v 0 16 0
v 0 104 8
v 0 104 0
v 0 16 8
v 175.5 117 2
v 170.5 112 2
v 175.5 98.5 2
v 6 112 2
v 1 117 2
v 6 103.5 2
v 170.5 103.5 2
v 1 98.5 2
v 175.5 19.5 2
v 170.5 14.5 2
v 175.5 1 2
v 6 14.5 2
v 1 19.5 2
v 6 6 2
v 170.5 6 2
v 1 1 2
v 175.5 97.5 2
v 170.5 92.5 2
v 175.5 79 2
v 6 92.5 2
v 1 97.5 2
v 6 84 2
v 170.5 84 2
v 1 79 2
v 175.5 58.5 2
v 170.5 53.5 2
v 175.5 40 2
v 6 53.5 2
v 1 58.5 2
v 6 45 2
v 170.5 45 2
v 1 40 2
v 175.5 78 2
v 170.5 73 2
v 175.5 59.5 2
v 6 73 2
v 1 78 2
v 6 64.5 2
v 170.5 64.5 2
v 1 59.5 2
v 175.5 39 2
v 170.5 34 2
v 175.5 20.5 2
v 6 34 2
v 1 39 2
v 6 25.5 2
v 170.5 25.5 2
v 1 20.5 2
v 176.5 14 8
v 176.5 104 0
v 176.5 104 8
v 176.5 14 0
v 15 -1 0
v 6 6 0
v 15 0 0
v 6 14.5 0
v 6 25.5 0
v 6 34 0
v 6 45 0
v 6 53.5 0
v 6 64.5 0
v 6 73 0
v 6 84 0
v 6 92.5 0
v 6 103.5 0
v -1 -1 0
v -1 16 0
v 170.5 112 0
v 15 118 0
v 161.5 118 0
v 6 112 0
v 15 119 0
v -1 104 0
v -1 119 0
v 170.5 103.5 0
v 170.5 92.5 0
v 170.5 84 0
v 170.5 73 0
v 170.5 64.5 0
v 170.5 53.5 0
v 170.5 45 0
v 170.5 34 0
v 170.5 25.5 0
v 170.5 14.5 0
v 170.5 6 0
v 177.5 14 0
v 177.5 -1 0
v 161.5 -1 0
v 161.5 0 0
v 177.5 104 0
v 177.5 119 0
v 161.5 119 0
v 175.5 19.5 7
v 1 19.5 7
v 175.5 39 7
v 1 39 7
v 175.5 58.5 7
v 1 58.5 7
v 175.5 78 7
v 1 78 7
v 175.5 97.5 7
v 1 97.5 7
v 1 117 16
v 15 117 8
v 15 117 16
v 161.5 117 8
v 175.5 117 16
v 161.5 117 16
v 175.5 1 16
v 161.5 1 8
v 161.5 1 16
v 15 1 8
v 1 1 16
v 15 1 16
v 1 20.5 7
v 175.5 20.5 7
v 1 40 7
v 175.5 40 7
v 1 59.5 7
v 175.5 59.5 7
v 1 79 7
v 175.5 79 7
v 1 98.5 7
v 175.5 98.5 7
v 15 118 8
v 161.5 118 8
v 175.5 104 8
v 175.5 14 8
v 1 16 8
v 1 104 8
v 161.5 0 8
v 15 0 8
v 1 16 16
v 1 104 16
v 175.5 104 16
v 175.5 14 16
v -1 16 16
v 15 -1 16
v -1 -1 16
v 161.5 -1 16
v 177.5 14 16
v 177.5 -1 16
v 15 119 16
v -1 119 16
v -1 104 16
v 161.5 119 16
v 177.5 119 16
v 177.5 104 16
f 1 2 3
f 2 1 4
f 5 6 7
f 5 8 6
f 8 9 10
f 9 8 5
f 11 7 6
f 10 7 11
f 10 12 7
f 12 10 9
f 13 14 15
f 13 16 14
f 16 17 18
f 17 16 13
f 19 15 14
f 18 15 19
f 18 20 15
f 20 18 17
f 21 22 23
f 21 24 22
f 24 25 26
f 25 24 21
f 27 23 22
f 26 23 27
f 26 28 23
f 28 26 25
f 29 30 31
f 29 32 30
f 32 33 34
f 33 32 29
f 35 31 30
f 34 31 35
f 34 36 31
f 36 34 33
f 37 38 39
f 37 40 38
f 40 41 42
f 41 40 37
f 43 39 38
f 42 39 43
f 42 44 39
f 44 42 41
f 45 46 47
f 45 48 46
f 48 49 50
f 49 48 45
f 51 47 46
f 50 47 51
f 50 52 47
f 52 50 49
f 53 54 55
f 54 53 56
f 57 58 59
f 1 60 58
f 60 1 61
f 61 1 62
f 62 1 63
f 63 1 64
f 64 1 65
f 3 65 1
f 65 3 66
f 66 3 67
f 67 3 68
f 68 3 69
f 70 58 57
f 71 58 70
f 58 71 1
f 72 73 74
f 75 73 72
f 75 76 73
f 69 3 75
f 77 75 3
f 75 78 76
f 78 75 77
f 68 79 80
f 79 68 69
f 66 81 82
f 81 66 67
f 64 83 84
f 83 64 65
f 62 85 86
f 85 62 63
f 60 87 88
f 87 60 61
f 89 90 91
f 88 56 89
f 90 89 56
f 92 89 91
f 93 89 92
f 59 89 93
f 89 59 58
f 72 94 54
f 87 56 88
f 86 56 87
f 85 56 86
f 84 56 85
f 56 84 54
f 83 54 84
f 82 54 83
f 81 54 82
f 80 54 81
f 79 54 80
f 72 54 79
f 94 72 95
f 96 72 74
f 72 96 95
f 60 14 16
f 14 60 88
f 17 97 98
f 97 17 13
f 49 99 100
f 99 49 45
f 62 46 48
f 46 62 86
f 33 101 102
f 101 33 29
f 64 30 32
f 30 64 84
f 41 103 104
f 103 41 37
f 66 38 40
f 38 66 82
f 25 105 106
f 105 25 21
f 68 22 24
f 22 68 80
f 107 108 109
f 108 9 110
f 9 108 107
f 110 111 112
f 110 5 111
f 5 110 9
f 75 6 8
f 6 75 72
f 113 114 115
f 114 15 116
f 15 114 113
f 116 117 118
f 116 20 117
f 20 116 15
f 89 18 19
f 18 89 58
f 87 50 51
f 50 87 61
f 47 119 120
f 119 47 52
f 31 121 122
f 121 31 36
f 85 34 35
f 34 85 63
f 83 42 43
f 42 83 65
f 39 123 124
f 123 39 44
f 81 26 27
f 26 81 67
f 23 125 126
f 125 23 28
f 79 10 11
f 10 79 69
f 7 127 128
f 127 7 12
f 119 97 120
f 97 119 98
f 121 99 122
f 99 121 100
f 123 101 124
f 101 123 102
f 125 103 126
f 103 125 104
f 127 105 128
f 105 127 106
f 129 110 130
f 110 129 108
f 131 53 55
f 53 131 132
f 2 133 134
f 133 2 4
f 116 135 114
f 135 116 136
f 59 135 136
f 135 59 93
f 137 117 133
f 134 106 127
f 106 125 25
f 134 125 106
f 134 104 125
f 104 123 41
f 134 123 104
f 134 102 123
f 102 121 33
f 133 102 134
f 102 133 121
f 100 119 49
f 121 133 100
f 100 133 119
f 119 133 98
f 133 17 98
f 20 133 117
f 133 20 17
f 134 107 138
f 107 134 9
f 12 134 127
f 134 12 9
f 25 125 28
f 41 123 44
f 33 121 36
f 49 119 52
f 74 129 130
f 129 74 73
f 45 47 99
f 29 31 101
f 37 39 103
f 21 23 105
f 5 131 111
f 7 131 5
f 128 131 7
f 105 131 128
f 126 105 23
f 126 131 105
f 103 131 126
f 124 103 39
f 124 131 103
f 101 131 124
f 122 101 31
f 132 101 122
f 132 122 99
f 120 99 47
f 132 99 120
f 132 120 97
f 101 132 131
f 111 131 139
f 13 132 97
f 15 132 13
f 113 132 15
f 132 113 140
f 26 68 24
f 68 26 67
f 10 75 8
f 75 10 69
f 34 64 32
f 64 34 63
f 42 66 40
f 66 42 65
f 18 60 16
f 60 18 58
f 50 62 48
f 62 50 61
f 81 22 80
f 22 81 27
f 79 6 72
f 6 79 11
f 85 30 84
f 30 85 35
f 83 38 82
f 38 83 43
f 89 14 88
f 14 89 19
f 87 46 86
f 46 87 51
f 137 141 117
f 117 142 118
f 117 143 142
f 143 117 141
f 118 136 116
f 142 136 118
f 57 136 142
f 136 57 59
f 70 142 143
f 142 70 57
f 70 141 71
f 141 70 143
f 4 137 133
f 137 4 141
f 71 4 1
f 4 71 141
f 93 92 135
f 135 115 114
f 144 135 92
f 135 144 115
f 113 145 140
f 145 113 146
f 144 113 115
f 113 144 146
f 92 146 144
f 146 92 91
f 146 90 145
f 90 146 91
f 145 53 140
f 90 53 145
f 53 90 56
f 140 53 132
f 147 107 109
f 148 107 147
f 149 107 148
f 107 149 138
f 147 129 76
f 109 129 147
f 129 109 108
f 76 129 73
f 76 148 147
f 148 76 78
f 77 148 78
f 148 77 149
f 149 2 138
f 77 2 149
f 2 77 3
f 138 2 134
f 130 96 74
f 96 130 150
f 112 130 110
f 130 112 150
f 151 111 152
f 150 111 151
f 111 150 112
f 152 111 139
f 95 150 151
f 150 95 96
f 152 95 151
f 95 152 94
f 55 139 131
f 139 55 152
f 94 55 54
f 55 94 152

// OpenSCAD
// 鍵帽儲存托盤產生器
// Keycap Storage Tray Generator
include <KSTG_Base.SCAD>

// 可複製此樣板檔依照自己需求另存新檔
// 以便以檔案區隔樣式

// 存放盒子的大小:
BoxSize_L1 = 193; //長度(水平)
BoxSize_W1 = 122; //寬度(垂直)
BoxSize_H = 55;  //高度

// 外圍厚度
Tray_Fence_T = 1;  //厚度
Tray_Fence_H = 6;  //高度

// 分隔片
Tray_Separator_T = 1;  //厚度
Tray_Separator_H = 5;  //高度 要高於上一層與鍵帽間的間隙
Tray_Separator_L = 3;  //短隔板長度

// 分隔片(長寬區分/尚未使用)
//Tray_Separator_T_L = 1;  //長(水平) 厚度
//Tray_Separator_T_W = 2;  //寬(垂直) 厚度
//Tray_Separator_H_L = 5;  //長(水平) 高度
//Tray_Separator_H_W = 5;  //寬(垂直) 高度

// 底板
Tray_Bottom_L = 5; //底部分隔板至到底板寬度
Tray_Bottom_T = 2; //底板厚度

//常見鍵帽高度表:
//SA  16.5mm  Cherry 9.4mm
//OEM 11.9mm  TAI HAO 14.8
//XDA 9.1mm   DSA 7.6
//ADA 8mm (18.2x18.2mm )
//適用於 Tray_Column_H 參數

//四角落立柱高度
//堆疊托盤時可墊高避免直接碰觸鍵帽
Tray_Column_H = 14; // 高度 可依照鍵帽高度調整
Tray_Column_T = 2;  // 厚度
Tray_Column_L = 15; // 長面長度
Tray_Column_W = 15; // 寬面長度 

//放置鍵帽空間
Keycaps_Space_L = 18.5;
Keycaps_Space_W = 18.5;

//垂直分隔片樣式
// 0 不需要
// 1 全部
// 2 短隔板無底板
// 3 短隔板有底板

Tray_VS_Type = 0;

//多餘空間處理方式
//How to use the extra space
// 0 不處理，照原本盒子大小產生外圍
// 1 不處理，僅列印鍵帽所需空間
// 2 角落填補剩餘空間
ExtraSpaceUse = 1;

//是否顯示文字標記 0關/1開
ShowText = 1 ;

//清除分隔片與底板
//請參考F5後帶出的座標數值
//例如：
// Tray_Separator_Cut_L=[
// [1,1],[2,1],[3,1],[1,2]
// ];

// 長(水平)分隔片 紅色
Tray_Separator_Cut_L=[
];
// 寬(垂直)分隔片 藍色 -vnm,     
Tray_Separator_Cut_W=[
];
// 交錯點 綠色 長寬分隔片交會處
// 須手動清除交錯點
Tray_Separator_Cut_C=[
];
// 長(水平)底板 紅色
Tray_Separator_Cut_LB=[
];
// 寬(垂直)底板 藍色
Tray_Separator_Cut_WB=[
];
